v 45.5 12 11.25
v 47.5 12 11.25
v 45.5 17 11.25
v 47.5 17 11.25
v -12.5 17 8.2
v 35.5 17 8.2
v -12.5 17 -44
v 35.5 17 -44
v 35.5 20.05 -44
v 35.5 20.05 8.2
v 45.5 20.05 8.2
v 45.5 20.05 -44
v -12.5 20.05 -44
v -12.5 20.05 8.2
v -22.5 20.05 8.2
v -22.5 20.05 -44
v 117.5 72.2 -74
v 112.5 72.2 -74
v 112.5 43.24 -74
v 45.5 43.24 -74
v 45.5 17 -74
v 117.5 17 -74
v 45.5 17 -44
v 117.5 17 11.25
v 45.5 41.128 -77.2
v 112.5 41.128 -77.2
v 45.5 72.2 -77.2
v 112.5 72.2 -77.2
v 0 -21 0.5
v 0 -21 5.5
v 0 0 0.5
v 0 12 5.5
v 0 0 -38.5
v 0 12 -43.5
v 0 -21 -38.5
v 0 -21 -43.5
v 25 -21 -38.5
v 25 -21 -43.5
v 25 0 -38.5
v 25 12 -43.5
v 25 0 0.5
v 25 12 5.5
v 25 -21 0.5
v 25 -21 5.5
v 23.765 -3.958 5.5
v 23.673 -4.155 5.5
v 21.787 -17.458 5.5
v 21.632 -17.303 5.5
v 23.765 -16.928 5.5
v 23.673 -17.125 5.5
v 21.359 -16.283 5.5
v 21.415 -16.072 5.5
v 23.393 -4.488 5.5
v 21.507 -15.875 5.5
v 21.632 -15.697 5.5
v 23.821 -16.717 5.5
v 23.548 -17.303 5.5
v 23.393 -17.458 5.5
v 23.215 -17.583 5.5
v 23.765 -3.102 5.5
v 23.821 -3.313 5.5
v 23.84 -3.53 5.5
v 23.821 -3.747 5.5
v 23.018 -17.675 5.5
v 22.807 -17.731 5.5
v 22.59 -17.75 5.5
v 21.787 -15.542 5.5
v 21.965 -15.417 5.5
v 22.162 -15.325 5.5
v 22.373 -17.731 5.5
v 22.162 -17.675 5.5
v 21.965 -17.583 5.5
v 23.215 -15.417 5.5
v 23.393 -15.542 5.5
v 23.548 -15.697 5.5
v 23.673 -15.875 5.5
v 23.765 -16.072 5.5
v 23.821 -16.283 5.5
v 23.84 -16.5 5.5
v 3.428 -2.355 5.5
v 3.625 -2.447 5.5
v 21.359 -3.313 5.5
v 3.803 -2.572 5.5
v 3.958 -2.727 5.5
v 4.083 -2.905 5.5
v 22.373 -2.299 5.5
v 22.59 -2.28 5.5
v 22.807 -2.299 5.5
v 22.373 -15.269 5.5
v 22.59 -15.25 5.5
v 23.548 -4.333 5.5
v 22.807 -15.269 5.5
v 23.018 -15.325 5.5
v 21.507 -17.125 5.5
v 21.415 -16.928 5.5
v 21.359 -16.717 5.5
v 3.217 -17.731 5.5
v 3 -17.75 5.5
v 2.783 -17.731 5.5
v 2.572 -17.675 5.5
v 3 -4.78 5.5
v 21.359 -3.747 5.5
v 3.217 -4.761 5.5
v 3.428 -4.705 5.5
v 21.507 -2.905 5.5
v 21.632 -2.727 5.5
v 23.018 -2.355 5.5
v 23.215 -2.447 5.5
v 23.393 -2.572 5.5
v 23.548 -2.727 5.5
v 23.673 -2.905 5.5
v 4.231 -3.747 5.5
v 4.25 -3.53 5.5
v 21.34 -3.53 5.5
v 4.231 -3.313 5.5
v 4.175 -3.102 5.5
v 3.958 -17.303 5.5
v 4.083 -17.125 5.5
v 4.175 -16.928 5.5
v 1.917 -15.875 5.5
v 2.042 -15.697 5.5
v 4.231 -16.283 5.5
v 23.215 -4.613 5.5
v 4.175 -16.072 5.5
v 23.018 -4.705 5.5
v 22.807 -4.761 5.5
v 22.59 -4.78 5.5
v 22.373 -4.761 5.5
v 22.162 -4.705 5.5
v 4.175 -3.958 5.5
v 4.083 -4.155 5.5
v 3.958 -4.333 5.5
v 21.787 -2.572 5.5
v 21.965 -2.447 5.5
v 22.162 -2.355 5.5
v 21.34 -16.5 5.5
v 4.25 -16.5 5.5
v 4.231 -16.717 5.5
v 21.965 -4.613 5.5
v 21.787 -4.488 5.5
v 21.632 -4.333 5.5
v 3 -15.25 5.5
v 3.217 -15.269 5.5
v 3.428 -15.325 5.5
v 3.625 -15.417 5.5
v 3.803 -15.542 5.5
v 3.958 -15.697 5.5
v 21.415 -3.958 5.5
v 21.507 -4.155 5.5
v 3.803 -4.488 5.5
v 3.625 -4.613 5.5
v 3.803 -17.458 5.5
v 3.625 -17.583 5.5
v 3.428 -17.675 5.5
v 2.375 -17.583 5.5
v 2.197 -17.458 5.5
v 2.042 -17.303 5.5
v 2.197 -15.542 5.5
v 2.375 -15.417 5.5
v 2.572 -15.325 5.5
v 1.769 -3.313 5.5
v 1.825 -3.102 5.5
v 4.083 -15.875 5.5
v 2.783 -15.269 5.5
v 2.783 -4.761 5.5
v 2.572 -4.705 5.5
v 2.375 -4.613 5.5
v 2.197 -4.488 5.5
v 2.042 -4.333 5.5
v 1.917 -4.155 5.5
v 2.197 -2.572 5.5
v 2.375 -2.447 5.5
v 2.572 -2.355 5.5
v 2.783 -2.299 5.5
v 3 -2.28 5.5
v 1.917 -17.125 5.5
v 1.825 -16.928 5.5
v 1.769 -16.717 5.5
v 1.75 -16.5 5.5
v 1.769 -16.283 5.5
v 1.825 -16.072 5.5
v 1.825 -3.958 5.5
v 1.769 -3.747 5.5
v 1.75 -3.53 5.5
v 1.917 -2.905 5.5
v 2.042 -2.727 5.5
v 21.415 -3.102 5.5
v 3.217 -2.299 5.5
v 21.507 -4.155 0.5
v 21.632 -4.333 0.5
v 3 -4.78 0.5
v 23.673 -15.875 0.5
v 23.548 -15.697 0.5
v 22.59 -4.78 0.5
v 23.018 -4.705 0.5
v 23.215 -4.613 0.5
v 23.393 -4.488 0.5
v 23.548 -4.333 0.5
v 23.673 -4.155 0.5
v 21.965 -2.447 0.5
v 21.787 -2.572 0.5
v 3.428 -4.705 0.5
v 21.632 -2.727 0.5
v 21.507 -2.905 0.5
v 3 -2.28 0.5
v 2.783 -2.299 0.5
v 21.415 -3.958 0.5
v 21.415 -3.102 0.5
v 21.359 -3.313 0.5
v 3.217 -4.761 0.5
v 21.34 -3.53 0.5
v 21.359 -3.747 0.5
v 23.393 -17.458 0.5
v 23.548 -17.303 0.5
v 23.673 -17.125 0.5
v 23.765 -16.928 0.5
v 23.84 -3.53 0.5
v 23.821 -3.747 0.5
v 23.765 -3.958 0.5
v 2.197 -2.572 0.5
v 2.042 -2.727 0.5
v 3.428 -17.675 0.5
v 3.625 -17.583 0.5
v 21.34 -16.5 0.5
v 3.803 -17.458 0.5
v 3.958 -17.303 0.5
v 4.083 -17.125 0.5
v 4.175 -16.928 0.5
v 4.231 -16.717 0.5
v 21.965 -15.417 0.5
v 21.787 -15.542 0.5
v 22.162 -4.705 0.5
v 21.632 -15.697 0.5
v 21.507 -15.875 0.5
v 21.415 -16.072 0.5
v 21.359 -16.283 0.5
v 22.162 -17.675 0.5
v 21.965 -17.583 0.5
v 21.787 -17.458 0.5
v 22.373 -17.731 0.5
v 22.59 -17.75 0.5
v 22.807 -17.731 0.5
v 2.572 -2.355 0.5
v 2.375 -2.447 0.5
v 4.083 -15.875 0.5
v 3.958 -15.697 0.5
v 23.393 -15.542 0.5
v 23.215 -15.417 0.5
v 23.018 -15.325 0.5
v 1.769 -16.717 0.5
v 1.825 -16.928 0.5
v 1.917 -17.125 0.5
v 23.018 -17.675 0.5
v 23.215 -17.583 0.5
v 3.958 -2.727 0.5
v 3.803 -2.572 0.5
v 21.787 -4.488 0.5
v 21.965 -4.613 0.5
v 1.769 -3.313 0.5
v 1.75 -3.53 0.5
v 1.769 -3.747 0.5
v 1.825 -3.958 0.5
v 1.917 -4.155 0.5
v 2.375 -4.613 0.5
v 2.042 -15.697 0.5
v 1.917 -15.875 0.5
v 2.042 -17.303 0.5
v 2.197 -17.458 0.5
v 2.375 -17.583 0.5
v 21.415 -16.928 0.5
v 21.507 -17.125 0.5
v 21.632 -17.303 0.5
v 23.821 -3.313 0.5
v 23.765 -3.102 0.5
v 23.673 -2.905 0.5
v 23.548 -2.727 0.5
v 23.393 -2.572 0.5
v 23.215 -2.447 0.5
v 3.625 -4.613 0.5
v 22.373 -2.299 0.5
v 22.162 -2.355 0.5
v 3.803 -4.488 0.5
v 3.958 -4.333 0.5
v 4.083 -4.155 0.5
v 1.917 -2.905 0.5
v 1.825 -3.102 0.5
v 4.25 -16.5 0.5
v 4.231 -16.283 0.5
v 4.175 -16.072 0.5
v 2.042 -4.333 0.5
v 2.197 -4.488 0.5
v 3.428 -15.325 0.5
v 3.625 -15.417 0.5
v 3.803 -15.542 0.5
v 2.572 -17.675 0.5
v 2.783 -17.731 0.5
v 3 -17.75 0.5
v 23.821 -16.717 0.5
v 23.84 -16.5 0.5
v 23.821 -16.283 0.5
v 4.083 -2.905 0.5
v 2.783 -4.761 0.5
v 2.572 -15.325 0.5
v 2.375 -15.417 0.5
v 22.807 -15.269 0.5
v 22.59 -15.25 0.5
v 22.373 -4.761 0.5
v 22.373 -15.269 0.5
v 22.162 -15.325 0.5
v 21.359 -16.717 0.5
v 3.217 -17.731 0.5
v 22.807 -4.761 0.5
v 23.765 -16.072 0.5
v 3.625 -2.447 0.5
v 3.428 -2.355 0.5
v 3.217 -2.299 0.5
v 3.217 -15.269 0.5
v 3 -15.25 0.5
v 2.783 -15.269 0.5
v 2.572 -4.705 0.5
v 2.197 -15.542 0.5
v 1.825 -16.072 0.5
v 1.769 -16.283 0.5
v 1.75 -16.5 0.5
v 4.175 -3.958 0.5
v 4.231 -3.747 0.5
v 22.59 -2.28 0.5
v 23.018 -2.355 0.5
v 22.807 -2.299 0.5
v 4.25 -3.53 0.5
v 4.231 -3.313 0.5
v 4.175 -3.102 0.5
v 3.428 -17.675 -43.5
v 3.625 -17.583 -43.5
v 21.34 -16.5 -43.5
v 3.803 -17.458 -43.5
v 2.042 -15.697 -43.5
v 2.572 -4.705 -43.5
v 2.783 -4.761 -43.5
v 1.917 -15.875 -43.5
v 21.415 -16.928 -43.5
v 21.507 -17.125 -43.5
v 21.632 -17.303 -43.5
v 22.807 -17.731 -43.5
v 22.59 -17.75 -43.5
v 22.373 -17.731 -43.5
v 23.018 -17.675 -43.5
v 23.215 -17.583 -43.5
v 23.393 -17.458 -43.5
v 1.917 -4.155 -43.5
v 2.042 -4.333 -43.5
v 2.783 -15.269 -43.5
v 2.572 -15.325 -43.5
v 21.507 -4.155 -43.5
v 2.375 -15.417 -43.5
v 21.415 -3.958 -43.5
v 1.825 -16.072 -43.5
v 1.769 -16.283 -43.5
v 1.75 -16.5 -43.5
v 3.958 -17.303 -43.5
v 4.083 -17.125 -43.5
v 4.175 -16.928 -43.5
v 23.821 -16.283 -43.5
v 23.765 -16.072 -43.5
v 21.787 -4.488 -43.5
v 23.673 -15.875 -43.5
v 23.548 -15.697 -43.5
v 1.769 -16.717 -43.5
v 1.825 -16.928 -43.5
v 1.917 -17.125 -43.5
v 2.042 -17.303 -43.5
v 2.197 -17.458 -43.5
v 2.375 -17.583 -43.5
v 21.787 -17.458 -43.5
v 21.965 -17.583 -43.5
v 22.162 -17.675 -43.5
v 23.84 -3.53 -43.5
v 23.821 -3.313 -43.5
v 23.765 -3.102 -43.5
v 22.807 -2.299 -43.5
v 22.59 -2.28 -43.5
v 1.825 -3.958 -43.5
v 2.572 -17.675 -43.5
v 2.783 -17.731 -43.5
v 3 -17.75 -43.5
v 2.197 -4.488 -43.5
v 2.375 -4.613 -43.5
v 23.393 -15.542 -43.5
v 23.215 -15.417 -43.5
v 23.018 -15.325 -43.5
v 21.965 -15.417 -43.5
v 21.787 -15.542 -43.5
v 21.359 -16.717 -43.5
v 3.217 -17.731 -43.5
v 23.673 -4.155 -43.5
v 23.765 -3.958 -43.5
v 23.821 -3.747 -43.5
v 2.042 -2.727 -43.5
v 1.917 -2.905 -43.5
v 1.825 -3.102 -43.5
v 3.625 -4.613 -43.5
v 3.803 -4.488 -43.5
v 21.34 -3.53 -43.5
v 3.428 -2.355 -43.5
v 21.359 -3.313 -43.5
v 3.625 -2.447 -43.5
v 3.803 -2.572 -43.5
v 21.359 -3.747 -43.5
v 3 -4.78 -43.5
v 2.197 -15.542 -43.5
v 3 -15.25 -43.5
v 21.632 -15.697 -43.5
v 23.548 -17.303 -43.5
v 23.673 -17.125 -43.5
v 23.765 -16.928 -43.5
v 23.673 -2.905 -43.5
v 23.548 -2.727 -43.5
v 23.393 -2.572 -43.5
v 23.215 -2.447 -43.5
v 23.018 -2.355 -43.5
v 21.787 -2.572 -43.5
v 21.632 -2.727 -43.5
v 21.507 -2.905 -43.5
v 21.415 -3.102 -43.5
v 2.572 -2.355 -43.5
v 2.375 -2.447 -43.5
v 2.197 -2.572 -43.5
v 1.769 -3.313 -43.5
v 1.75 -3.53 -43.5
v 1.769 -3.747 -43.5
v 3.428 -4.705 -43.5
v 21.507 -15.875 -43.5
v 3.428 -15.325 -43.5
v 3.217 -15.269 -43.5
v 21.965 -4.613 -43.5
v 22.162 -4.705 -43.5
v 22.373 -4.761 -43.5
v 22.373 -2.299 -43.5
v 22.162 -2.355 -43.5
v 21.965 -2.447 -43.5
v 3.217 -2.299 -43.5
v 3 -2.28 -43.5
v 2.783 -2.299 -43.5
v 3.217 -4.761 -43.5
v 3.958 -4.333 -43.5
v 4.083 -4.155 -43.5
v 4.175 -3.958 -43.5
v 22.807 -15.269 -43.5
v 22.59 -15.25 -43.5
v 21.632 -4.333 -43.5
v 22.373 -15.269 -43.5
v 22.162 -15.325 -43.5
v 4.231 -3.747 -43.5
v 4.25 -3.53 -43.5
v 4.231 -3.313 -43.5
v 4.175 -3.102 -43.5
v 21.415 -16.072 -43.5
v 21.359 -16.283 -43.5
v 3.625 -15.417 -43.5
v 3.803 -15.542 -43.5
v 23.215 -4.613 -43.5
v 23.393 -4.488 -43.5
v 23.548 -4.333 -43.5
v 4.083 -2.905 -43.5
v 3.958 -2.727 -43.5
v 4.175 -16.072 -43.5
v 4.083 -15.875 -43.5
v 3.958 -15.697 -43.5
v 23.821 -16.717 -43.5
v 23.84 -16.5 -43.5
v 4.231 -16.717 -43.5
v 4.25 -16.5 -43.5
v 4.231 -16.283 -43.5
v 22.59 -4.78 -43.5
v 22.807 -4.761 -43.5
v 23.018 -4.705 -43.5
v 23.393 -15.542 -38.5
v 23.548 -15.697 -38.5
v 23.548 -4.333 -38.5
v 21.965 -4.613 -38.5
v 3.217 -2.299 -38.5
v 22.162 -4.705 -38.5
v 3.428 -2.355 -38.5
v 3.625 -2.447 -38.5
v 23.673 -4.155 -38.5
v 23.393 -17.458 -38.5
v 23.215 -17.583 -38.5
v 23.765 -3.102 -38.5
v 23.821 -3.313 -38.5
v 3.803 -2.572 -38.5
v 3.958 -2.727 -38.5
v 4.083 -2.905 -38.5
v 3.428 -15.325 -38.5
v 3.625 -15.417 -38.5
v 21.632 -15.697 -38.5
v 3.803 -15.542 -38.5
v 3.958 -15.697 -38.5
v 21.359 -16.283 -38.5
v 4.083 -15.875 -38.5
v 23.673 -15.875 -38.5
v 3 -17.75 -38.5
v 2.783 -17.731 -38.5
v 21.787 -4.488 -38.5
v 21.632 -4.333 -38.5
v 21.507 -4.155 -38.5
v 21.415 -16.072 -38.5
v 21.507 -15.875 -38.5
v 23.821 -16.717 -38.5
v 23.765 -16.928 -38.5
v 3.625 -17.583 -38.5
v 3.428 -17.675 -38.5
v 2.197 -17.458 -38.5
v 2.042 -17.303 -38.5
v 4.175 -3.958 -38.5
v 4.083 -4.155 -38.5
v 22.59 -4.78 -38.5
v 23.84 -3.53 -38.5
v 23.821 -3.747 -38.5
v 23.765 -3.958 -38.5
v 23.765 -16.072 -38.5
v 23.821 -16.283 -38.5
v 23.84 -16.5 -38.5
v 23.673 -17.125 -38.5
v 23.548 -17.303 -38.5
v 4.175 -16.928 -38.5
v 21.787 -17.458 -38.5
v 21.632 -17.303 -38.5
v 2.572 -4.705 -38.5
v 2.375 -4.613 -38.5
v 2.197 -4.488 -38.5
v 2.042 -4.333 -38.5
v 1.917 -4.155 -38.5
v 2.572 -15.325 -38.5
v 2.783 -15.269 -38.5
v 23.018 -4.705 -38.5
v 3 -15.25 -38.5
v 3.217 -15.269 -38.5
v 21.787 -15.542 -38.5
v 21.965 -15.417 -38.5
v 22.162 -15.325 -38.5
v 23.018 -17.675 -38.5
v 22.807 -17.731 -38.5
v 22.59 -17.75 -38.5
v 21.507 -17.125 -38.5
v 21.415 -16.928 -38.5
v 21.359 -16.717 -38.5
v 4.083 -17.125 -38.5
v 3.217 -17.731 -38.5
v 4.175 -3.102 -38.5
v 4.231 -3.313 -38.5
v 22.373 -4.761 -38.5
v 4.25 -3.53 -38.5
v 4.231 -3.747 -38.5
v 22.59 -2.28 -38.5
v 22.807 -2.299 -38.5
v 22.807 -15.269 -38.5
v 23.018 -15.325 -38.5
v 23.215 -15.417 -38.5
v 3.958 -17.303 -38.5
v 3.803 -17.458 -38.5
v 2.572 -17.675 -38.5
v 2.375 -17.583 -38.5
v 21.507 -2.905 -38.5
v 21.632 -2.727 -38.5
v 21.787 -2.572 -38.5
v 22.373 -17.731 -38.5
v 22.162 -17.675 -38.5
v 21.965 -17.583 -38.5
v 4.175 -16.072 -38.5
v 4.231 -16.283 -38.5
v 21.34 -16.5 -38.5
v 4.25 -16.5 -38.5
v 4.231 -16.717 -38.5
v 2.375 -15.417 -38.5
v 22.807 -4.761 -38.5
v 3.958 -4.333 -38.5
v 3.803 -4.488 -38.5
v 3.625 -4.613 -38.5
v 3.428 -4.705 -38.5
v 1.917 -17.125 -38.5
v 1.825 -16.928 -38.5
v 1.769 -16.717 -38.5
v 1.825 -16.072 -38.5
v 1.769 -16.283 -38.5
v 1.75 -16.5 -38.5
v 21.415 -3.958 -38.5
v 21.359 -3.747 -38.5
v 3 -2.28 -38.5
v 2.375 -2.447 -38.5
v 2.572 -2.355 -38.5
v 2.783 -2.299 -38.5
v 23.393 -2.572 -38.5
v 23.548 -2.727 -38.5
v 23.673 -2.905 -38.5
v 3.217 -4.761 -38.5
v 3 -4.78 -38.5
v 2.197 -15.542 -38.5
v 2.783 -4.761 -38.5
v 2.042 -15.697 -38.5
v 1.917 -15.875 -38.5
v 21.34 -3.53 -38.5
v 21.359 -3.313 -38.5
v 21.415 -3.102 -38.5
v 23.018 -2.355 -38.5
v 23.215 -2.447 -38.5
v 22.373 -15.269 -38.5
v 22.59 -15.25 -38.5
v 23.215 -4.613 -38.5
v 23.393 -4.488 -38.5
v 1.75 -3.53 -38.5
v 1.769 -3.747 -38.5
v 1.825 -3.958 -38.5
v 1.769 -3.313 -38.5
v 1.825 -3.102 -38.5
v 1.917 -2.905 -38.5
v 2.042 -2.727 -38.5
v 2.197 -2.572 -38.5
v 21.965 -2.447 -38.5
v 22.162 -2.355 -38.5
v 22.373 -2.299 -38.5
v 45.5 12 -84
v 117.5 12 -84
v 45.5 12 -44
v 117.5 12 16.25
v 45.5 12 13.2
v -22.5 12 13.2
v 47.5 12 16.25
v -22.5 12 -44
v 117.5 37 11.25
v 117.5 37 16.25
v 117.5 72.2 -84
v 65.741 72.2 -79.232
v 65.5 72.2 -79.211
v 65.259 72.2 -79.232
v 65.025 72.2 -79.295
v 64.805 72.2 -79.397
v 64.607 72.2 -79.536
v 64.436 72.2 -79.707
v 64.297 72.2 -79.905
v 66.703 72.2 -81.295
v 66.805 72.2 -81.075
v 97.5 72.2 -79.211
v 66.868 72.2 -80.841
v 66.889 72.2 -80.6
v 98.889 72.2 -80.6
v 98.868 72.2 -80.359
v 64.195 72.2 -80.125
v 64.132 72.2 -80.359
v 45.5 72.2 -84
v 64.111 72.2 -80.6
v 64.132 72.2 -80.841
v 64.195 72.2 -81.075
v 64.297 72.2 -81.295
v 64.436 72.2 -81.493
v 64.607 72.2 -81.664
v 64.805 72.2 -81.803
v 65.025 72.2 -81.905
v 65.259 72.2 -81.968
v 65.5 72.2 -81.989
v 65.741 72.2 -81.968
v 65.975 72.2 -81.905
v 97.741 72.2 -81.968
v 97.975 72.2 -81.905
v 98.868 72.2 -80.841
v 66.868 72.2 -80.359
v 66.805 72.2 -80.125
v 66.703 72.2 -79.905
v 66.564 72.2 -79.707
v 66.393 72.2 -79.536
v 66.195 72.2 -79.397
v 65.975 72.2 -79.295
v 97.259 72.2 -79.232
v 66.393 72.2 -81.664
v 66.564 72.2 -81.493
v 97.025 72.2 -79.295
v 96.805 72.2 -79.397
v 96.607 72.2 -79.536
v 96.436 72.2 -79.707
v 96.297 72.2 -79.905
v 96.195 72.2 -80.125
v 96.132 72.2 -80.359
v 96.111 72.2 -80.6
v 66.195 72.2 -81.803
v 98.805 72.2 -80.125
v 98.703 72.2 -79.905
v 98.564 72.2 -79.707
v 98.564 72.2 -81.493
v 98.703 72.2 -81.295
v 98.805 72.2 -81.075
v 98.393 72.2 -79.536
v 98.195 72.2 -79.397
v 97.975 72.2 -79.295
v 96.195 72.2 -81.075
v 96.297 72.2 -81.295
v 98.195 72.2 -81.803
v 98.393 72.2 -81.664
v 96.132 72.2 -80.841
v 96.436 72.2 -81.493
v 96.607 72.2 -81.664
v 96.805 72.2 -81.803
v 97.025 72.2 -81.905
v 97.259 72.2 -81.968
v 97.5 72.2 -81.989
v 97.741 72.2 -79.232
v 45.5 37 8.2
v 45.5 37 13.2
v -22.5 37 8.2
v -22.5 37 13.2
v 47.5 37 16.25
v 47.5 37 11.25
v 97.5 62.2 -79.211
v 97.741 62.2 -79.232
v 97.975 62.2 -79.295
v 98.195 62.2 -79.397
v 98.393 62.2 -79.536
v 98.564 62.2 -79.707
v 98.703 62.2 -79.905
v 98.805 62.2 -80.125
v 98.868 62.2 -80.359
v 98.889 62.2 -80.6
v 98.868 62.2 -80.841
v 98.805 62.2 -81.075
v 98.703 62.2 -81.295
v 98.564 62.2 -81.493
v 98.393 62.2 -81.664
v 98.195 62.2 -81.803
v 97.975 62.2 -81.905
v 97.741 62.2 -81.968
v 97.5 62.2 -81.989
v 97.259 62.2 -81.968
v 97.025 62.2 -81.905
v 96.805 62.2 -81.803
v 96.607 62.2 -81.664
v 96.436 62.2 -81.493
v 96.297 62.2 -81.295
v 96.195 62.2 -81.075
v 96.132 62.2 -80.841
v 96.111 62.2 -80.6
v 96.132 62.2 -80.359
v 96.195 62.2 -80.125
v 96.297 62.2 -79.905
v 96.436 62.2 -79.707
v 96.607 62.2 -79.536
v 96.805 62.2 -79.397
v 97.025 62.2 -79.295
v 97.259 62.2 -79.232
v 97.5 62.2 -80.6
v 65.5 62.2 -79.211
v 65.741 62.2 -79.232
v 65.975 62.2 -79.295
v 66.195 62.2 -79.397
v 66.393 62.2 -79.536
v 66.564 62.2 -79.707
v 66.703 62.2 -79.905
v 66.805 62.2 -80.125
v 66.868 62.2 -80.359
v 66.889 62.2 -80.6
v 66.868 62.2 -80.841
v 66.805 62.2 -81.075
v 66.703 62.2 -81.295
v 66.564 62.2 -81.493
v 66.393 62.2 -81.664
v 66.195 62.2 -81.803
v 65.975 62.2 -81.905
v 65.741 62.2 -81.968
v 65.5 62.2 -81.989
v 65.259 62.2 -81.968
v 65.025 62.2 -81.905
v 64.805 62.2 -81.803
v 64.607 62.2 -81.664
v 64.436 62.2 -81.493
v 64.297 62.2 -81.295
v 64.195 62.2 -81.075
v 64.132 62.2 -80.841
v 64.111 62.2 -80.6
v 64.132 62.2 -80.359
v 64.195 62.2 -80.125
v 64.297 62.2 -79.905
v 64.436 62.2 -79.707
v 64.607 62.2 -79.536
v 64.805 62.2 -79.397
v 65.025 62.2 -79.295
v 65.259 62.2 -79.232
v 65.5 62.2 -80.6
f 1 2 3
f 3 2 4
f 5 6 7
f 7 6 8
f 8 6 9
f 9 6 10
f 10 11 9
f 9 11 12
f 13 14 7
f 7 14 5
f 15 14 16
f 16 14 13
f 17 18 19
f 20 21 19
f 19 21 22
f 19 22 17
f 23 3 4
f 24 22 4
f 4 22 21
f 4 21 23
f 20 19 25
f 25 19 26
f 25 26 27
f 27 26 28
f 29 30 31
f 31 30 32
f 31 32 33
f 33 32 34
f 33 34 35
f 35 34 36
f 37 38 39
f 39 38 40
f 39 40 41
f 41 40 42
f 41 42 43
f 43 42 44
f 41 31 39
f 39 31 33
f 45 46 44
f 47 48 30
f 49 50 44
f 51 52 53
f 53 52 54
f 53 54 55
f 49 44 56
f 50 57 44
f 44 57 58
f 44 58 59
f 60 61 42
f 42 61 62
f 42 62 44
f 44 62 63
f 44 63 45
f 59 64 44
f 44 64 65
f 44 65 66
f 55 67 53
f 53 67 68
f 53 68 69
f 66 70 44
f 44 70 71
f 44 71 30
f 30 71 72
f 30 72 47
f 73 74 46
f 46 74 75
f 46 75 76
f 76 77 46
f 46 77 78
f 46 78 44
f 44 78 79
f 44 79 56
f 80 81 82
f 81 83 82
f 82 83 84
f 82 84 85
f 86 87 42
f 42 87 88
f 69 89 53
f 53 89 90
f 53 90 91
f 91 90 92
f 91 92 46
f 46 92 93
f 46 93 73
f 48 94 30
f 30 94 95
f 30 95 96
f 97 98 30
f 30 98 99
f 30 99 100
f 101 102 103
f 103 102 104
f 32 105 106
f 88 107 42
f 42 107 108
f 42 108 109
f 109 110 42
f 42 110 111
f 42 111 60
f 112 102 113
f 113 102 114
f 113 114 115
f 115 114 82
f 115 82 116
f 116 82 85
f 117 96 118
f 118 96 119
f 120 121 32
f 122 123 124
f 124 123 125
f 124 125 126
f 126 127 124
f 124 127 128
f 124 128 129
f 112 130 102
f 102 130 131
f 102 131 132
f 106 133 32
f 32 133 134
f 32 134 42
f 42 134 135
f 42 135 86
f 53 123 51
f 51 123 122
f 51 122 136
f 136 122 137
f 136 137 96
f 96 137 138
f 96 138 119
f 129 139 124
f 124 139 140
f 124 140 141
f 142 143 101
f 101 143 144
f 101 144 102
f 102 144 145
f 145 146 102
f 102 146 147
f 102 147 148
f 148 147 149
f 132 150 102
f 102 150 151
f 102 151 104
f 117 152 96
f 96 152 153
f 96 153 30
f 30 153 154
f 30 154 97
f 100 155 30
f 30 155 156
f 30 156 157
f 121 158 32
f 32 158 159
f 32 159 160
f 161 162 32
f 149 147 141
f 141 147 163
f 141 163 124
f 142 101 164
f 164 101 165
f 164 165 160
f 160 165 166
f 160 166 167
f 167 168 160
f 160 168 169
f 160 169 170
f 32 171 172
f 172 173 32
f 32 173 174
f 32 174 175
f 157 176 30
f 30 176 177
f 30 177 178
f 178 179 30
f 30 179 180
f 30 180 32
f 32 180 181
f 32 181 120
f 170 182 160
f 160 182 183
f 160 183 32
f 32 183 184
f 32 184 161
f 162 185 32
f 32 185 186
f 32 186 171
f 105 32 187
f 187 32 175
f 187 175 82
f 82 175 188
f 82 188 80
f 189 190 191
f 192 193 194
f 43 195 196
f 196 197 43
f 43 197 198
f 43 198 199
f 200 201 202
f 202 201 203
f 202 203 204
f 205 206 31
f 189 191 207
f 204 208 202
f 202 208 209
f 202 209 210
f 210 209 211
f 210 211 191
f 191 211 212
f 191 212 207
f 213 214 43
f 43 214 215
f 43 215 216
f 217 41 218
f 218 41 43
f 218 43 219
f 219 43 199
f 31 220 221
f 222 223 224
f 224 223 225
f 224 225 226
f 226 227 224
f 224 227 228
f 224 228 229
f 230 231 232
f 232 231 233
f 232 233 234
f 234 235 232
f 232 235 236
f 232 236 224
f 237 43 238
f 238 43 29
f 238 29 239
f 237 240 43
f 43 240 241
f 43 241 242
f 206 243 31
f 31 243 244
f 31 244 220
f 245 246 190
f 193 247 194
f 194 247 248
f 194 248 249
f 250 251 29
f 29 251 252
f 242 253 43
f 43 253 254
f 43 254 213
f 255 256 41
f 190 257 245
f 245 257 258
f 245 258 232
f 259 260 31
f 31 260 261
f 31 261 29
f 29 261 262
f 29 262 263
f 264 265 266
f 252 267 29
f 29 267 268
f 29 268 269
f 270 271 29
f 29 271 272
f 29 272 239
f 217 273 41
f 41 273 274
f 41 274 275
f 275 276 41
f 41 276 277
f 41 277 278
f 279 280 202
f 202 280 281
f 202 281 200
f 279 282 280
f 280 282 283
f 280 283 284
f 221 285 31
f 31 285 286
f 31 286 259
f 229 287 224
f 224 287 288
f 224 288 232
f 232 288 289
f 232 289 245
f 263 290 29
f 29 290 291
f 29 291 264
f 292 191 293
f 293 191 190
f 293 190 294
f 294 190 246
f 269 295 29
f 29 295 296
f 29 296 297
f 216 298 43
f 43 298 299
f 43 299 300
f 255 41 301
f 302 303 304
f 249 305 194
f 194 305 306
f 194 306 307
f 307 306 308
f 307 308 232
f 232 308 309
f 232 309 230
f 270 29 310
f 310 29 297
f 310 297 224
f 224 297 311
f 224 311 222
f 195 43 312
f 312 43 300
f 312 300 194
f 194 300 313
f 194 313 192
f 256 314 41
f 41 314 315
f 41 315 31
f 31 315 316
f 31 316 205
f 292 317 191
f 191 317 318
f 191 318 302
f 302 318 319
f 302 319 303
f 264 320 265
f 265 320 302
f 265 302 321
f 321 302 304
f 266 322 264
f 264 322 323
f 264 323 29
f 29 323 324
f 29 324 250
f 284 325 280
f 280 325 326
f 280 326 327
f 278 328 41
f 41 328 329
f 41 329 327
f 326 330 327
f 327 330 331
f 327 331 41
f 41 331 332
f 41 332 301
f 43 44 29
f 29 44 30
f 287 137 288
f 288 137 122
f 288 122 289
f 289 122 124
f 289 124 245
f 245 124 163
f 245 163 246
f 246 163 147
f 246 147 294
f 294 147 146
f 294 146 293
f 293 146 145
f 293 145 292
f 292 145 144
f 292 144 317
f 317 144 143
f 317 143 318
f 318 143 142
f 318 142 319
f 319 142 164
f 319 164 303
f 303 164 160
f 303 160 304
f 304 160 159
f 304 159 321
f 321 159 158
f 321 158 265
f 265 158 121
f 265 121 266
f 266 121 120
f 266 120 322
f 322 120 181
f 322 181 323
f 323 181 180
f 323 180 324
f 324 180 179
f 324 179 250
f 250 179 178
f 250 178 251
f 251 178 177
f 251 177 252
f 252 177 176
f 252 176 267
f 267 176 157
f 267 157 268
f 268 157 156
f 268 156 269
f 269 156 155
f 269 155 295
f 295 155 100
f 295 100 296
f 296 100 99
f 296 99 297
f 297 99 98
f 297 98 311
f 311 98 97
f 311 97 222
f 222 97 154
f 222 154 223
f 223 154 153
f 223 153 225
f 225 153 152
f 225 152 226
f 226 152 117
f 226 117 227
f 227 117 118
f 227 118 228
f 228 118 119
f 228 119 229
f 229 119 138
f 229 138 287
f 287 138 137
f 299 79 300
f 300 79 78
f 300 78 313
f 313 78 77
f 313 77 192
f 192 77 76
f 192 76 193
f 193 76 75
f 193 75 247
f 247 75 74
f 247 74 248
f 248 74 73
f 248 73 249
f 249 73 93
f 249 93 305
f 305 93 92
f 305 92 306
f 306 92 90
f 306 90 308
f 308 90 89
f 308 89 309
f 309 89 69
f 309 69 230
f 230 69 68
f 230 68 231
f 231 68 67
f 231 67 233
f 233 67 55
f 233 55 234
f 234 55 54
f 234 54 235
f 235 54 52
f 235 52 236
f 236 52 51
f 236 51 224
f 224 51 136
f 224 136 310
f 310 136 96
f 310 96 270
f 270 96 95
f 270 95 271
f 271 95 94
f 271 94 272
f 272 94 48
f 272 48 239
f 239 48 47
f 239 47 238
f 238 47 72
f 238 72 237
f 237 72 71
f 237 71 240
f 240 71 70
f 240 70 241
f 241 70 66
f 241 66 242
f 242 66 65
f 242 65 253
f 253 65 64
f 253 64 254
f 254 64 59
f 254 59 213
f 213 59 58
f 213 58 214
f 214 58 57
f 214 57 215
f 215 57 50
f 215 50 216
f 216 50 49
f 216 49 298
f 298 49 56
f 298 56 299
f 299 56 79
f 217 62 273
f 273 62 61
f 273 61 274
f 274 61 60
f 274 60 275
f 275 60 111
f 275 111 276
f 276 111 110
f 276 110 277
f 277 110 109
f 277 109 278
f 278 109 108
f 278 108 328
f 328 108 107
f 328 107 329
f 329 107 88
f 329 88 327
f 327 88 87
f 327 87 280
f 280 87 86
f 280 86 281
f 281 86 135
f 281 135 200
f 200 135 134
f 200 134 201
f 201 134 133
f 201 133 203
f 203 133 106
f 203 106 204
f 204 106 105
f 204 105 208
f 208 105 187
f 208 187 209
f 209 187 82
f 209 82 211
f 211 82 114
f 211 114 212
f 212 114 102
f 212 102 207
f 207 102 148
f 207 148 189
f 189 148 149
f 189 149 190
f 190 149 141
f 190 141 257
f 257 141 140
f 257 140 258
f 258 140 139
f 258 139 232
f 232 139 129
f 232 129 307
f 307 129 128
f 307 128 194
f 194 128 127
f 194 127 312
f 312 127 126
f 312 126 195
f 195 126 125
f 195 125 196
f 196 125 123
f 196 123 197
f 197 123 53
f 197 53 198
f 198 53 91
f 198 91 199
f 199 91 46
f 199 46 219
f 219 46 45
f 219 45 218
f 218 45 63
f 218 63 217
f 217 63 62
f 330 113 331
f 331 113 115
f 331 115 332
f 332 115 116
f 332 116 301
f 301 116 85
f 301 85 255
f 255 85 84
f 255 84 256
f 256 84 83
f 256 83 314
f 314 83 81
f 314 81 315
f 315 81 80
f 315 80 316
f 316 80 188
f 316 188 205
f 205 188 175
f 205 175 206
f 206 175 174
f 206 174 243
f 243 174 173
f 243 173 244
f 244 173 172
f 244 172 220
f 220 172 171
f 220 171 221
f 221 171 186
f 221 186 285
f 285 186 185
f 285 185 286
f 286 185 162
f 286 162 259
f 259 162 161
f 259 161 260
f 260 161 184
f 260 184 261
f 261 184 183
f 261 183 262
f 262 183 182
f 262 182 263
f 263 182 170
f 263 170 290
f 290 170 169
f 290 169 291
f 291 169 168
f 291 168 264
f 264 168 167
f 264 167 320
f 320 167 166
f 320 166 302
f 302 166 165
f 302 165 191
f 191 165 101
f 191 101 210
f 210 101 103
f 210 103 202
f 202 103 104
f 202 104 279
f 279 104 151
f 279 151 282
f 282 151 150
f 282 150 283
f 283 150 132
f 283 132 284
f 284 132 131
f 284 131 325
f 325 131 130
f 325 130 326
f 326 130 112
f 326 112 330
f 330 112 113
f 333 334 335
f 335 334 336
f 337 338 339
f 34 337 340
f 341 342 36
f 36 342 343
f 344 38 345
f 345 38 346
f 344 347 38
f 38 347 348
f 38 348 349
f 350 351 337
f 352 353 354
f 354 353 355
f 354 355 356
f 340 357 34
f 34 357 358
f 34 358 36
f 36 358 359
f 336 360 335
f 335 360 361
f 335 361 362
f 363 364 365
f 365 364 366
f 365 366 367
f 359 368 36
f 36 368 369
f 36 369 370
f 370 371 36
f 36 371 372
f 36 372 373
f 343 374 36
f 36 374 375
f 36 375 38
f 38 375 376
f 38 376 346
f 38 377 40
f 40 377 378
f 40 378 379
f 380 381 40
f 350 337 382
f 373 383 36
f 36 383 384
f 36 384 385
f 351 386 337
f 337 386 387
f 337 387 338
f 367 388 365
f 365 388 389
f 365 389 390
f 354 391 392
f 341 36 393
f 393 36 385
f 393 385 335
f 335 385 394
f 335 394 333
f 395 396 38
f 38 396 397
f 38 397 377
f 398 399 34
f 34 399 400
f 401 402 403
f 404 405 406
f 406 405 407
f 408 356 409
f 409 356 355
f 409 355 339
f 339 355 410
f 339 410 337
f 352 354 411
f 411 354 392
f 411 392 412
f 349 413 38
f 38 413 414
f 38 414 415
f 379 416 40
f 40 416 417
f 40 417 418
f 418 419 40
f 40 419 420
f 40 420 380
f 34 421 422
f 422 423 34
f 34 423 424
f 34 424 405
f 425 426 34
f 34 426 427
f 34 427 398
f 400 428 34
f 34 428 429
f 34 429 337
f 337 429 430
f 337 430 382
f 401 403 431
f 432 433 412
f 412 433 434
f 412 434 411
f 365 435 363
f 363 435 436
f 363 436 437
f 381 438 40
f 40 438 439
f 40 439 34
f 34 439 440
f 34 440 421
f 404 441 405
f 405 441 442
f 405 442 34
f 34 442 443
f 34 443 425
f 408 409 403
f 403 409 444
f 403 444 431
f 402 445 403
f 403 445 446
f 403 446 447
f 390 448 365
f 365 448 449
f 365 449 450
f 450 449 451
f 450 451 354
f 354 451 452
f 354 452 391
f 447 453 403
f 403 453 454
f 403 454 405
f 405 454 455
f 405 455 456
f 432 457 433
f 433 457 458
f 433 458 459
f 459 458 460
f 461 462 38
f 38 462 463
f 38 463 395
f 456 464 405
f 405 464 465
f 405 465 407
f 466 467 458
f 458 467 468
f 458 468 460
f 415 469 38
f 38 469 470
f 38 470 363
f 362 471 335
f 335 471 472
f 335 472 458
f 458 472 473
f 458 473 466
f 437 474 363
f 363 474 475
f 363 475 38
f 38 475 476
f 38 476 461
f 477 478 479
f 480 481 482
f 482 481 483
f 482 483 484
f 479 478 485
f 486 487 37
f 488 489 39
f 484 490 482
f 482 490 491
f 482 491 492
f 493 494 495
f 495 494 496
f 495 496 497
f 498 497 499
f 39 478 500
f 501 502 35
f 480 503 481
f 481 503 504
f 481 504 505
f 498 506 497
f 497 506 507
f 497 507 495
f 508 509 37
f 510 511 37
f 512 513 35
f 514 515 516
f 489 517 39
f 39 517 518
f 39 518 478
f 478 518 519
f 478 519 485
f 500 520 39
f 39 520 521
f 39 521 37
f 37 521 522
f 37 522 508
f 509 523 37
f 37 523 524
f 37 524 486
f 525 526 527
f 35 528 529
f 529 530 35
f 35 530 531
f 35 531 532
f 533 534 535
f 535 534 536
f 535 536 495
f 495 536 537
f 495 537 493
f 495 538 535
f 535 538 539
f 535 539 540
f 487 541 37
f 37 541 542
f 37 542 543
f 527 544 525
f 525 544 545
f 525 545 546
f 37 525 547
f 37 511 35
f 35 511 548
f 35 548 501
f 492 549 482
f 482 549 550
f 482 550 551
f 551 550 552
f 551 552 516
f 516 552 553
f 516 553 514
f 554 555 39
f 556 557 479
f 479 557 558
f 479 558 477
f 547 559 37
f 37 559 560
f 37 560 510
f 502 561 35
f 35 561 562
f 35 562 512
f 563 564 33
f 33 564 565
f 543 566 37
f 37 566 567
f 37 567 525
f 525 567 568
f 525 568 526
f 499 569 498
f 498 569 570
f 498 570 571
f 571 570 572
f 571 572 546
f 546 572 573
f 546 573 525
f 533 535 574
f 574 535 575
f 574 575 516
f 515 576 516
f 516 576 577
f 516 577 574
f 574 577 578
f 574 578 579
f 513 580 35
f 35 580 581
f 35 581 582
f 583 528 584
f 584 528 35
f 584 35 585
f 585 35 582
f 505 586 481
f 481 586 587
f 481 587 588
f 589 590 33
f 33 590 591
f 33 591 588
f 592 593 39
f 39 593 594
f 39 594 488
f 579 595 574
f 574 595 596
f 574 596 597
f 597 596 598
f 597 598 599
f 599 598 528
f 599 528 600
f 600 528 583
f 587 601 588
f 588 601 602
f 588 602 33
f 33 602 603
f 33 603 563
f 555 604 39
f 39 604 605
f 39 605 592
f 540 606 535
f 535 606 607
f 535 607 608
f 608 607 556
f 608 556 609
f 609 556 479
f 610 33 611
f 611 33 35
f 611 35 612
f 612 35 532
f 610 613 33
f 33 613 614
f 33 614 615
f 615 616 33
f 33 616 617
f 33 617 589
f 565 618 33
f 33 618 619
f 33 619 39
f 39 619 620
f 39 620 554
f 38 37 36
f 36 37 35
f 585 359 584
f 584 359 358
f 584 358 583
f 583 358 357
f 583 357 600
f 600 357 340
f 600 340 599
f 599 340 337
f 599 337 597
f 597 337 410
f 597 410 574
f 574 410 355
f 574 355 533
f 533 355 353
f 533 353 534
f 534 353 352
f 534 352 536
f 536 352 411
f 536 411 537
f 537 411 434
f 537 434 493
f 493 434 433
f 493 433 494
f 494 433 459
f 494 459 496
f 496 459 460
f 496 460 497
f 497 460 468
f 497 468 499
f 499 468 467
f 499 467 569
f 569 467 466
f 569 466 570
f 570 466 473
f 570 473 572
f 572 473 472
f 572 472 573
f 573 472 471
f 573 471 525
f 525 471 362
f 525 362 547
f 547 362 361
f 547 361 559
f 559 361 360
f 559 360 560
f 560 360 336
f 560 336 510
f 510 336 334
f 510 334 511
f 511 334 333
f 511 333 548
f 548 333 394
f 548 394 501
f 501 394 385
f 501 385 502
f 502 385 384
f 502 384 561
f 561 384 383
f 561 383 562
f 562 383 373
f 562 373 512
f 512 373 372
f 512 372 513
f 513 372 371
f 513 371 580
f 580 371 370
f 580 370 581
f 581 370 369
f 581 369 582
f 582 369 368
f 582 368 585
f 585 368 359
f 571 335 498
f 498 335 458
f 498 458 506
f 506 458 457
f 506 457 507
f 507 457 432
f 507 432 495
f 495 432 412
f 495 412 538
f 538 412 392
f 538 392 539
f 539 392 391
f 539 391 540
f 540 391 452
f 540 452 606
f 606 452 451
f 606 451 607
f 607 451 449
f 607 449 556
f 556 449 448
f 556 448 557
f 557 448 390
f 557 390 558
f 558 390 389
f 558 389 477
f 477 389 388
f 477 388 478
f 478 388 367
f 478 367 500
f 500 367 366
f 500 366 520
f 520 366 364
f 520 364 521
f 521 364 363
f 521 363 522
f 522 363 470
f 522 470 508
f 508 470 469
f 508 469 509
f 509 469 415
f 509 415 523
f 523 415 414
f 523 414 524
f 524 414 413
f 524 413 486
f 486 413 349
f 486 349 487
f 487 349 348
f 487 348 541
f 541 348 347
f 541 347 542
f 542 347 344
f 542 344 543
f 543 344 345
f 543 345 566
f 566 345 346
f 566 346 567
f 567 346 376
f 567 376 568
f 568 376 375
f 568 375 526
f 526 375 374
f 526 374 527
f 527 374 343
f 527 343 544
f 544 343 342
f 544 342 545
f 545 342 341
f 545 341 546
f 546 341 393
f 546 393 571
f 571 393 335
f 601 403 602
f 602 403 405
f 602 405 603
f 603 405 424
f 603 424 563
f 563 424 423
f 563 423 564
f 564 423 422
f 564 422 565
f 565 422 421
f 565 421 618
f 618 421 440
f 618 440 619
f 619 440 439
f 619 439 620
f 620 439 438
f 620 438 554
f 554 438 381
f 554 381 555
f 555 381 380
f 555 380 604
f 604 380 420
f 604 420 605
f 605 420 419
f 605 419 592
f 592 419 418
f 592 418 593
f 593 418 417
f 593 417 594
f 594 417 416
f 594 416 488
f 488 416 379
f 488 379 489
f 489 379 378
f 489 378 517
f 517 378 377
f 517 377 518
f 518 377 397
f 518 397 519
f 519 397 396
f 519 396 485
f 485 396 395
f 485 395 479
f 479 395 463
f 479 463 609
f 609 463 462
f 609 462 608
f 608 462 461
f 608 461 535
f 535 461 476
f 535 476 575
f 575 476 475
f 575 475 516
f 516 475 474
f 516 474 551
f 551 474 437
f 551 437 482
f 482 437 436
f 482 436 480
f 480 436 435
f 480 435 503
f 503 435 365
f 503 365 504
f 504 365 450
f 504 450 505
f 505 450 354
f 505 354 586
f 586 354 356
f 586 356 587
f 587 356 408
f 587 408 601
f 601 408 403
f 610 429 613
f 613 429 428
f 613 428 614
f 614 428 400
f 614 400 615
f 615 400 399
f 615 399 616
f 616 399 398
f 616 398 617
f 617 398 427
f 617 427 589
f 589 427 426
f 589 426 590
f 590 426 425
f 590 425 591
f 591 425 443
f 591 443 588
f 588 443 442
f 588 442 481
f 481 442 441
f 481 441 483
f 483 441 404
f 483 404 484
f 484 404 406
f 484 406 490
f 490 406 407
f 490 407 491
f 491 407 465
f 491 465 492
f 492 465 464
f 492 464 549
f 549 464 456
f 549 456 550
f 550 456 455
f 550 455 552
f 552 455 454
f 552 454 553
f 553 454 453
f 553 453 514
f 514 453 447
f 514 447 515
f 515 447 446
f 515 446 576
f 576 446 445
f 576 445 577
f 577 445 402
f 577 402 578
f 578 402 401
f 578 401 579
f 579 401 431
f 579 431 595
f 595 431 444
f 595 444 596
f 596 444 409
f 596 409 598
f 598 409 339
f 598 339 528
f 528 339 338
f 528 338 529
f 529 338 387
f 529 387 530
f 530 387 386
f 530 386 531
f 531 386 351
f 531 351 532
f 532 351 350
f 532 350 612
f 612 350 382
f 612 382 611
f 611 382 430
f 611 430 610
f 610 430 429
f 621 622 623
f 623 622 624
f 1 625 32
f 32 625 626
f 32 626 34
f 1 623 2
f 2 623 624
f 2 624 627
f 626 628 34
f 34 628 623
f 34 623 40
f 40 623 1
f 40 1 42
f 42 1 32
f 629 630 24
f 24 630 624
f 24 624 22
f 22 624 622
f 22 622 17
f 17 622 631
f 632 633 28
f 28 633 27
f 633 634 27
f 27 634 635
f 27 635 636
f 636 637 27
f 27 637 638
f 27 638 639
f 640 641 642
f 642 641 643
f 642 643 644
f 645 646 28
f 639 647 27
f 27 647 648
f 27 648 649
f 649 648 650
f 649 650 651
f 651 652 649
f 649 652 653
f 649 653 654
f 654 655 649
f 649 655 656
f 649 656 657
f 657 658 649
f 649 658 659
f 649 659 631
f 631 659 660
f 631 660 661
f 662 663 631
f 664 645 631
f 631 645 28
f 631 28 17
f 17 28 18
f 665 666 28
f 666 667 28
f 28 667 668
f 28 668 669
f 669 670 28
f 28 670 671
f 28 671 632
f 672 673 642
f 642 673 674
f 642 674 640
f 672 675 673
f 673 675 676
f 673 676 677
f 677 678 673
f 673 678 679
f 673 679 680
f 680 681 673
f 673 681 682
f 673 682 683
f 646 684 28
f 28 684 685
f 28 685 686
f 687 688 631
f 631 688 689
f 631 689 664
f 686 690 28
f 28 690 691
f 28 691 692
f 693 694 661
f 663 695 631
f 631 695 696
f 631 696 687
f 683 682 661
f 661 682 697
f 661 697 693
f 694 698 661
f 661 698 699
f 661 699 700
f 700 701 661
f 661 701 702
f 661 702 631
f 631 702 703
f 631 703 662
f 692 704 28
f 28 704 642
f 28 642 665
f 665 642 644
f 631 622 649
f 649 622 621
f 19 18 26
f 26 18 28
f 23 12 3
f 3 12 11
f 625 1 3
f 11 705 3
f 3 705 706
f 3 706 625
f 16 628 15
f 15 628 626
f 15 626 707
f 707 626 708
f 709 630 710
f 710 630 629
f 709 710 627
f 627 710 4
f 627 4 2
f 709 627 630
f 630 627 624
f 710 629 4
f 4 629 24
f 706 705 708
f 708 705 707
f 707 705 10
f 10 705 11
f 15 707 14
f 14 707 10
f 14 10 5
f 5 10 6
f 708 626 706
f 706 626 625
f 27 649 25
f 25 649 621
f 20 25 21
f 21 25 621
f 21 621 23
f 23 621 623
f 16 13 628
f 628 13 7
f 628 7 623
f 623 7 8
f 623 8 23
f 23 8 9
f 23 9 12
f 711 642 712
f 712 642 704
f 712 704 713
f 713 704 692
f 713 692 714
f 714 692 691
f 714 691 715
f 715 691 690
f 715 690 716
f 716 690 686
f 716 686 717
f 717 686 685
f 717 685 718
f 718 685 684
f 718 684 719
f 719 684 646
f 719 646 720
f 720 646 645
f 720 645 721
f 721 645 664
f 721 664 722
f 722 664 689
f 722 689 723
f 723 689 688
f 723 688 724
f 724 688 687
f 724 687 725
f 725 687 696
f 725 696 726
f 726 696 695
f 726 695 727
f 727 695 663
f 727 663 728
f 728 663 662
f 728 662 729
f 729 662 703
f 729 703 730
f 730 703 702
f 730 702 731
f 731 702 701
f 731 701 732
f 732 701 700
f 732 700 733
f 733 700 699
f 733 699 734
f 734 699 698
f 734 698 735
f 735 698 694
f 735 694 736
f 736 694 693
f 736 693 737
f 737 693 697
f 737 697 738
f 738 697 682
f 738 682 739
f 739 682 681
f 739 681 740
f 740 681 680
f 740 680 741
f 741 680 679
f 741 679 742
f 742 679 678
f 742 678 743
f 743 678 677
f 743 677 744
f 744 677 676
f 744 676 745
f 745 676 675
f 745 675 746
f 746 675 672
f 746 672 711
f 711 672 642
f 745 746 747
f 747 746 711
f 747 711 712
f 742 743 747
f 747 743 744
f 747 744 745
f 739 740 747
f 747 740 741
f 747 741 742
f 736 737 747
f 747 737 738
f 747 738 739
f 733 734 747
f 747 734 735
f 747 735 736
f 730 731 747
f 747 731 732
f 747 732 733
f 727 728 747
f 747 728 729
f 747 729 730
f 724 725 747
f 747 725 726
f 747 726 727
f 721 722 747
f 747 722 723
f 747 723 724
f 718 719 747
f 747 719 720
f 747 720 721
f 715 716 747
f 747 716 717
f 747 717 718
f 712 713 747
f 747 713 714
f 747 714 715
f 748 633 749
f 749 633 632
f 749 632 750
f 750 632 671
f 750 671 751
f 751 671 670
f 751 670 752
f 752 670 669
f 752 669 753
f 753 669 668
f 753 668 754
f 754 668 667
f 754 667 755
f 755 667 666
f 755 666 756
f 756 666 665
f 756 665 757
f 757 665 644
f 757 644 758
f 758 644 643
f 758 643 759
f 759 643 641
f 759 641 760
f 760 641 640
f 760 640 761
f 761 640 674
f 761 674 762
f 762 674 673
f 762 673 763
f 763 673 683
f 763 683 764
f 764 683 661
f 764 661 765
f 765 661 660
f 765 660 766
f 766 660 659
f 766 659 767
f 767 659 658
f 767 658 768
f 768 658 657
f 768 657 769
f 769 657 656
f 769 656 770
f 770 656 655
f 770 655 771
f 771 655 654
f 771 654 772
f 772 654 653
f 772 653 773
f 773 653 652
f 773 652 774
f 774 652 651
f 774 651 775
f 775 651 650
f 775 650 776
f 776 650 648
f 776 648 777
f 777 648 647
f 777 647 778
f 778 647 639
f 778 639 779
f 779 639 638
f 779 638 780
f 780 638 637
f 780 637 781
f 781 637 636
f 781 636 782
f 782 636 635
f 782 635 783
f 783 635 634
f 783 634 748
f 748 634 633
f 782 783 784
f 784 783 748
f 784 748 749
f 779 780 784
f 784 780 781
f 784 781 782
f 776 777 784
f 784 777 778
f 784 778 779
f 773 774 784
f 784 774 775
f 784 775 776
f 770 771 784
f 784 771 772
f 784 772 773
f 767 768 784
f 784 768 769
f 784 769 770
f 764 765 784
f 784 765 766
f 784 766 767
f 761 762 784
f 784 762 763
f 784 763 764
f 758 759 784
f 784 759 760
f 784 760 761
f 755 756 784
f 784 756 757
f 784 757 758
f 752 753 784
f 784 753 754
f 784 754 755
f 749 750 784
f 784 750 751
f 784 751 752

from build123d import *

# Parameters (mm, degrees)
SKETCH1_W                 = 25
SKETCH1_H                 = 38
BOSS_EXTRUDE1_DEPTH       = 12
SKETCH3_W                 = 25
SKETCH3_H                 = 12
BOSS_EXTRUDE2_DEPTH       = 5.5
SKETCH5_W                 = 25
SKETCH5_H                 = 5
BOSS_EXTRUDE3_DEPTH       = 21
SKETCH6_R                 = 1.25
CUT_EXTRUDE1_DEPTH        = 10
SKETCH7_W                 = 210
SKETCH7_H                 = 85.25
BOSS_EXTRUDE4_DEPTH       = 5
SKETCH8_W                 = 10
SKETCH8_H                 = 60.2
BOSS_EXTRUDE5_DEPTH       = 210
CUT_EXTRUDE3_DEPTH        = 211
BOSS_EXTRUDE6_DEPTH       = 5
SKETCH11_W                = 10
SKETCH11_H                = 85.25
BOSS_EXTRUDE7_DEPTH       = 3.05
SKETCH12_W                = 10
SKETCH12_H                = 50
BOSS_EXTRUDE8_DEPTH       = 10.45
SKETCH13_W                = 70
SKETCH13_H                = 25
BOSS_EXTRUDE9_DEPTH       = 5
SKETCH14_W                = 68
SKETCH14_H                = 25
BOSS_EXTRUDE10_DEPTH      = 1.95
BOSS_EXTRUDE10_DEPTH_BACK = 3.05
SKETCH18_W                = 95.25
SKETCH18_H                = 60.2
CUT_EXTRUDE5_DEPTH        = 70
SKETCH19_W                = 68
SKETCH19_H                = 40
CUT_EXTRUDE6_DEPTH        = 94.2
SKETCH20_R                = 1.3890625
CUT_EXTRUDE7_DEPTH        = 10


with BuildPart() as part:
    # Sketch1 → Boss-Extrude1 (new body)
    with BuildSketch(Plane(origin=(0, 0, 0), x_dir=(1, 0, 0), z_dir=(0, 1, 0))):
        with Locations((12.5, 19)):
            Rectangle(SKETCH1_W, SKETCH1_H)
    extrude(amount=BOSS_EXTRUDE1_DEPTH)

    # Sketch3 → Boss-Extrude2 (add)
    with BuildSketch(Plane.XY):
        with Locations((12.5, 6)):
            Rectangle(SKETCH3_W, SKETCH3_H)
    boss_extrude2 = extrude(amount=BOSS_EXTRUDE2_DEPTH)

    # Sketch5 → Boss-Extrude3 (add)
    with BuildSketch(Plane.XZ):
        with Locations((12.5, 3)):
            Rectangle(SKETCH5_W, SKETCH5_H)
    boss_extrude3 = extrude(amount=BOSS_EXTRUDE3_DEPTH)

    # Sketch6 → Cut-Extrude1 (cut)
    with BuildSketch(Plane.XY.offset(5.5)):
        with Locations((3, -16.5)):
            Circle(SKETCH6_R)
        with Locations((22.59, -16.5)):
            Circle(SKETCH6_R)
        with Locations((22.59, -3.53)):
            Circle(SKETCH6_R)
        with Locations((3, -3.53)):
            Circle(SKETCH6_R)
    cut_extrude1 = extrude(amount=-CUT_EXTRUDE1_DEPTH, mode=Mode.SUBTRACT)

    # Mirror1: Boss-Extrude2, Boss-Extrude3, Cut-Extrude1 across plane
    add(boss_extrude2.mirror(Plane.XY.offset(-19)))
    add(boss_extrude3.mirror(Plane.XY.offset(-19)))
    add(cut_extrude1.mirror(Plane.XY.offset(-19)), mode=Mode.SUBTRACT)

    # Sketch7 → Boss-Extrude4 (add)
    with BuildSketch(Plane(origin=(0, 12, 0), x_dir=(1, 0, 0), z_dir=(0, 1, 0))):
        with Locations((12.5, 31.375)):
            Rectangle(SKETCH7_W, SKETCH7_H)
    extrude(amount=BOSS_EXTRUDE4_DEPTH)

    # Sketch8 → Boss-Extrude5 (add, through all)
    with BuildSketch(Plane(origin=(117.5, 0, 0), x_dir=(0, 0, -1), z_dir=(1, 0, 0))):
        with Locations((79, 42.1)):
            Rectangle(SKETCH8_W, SKETCH8_H)
    extrude(amount=-BOSS_EXTRUDE5_DEPTH)

    # Sketch9 → Cut-Extrude3 (cut, through all)
    with BuildSketch(Plane.ZY.offset(92.5)):
        Polygon((-74, 43.24), (-77.2, 41.128), (-77.2, 72.2), (-74, 72.2), align=None)
    extrude(amount=-CUT_EXTRUDE3_DEPTH, mode=Mode.SUBTRACT)

    # Sketch10 → Boss-Extrude6 (add)
    with BuildSketch(Plane(origin=(117.5, 0, 0), x_dir=(0, 0, -1), z_dir=(1, 0, 0))):
        Polygon((77.2, 72.2), (74, 72.2), (74, 43.24), (77.2, 41.128), align=None)
    extrude(amount=-BOSS_EXTRUDE6_DEPTH)

    # Sketch11 → Boss-Extrude7 (add)
    with BuildSketch(Plane(origin=(0, 17, 0), x_dir=(1, 0, 0), z_dir=(0, 1, 0))):
        with Locations((40.5, 31.375)):
            Rectangle(SKETCH11_W, SKETCH11_H)
        with Locations((-17.5, 31.375)):
            Rectangle(SKETCH11_W, SKETCH11_H)
    extrude(amount=BOSS_EXTRUDE7_DEPTH)

    # Sketch12 → Boss-Extrude8 (add)
    with BuildSketch(Plane(origin=(0, 17, 0), x_dir=(1, 0, 0), z_dir=(0, 1, 0))):
        with Locations((-87.5, 31.375)):
            Rectangle(SKETCH12_W, SKETCH12_H)
        with Locations((-37.5, 31.375)):
            Rectangle(SKETCH12_W, SKETCH12_H)
    extrude(amount=BOSS_EXTRUDE8_DEPTH)

    # Sketch13 → Boss-Extrude9 (add)
    with BuildSketch(Plane.XY.offset(11.25)):
        with Locations((82.5, 24.5)):
            Rectangle(SKETCH13_W, SKETCH13_H)
    extrude(amount=BOSS_EXTRUDE9_DEPTH)

    # Sketch14 → Boss-Extrude10 (add, two sides)
    with BuildSketch(Plane.XY.offset(11.25)) as boss_extrude10_sk:
        with Locations((11.5, 24.5)):
            Rectangle(SKETCH14_W, SKETCH14_H)
    extrude(amount=BOSS_EXTRUDE10_DEPTH)
    extrude(boss_extrude10_sk.sketch, amount=-BOSS_EXTRUDE10_DEPTH_BACK)

    # Sketch18 → Cut-Extrude5 (cut)
    with BuildSketch(Plane.ZY.offset(92.5)):
        with Locations((-36.375, 42.1)):
            Rectangle(SKETCH18_W, SKETCH18_H)
    extrude(amount=-CUT_EXTRUDE5_DEPTH, mode=Mode.SUBTRACT)

    # Sketch19 → Cut-Extrude6 (cut, through all)
    with BuildSketch(Plane(origin=(0, 72.2, 0), x_dir=(1, 0, 0), z_dir=(0, 1, 0))):
        with Locations((11.5, 64)):
            Rectangle(SKETCH19_W, SKETCH19_H)
    extrude(amount=-CUT_EXTRUDE6_DEPTH, mode=Mode.SUBTRACT)

    # Sketch20 → Cut-Extrude7 (cut)
    with BuildSketch(Plane(origin=(0, 72.2, 0), x_dir=(1, 0, 0), z_dir=(0, 1, 0))):
        with Locations((65.5, 80.6)):
            Circle(SKETCH20_R)
        with Locations((97.5, 80.6)):
            Circle(SKETCH20_R)
    extrude(amount=-CUT_EXTRUDE7_DEPTH, mode=Mode.SUBTRACT)


solid = part.part
